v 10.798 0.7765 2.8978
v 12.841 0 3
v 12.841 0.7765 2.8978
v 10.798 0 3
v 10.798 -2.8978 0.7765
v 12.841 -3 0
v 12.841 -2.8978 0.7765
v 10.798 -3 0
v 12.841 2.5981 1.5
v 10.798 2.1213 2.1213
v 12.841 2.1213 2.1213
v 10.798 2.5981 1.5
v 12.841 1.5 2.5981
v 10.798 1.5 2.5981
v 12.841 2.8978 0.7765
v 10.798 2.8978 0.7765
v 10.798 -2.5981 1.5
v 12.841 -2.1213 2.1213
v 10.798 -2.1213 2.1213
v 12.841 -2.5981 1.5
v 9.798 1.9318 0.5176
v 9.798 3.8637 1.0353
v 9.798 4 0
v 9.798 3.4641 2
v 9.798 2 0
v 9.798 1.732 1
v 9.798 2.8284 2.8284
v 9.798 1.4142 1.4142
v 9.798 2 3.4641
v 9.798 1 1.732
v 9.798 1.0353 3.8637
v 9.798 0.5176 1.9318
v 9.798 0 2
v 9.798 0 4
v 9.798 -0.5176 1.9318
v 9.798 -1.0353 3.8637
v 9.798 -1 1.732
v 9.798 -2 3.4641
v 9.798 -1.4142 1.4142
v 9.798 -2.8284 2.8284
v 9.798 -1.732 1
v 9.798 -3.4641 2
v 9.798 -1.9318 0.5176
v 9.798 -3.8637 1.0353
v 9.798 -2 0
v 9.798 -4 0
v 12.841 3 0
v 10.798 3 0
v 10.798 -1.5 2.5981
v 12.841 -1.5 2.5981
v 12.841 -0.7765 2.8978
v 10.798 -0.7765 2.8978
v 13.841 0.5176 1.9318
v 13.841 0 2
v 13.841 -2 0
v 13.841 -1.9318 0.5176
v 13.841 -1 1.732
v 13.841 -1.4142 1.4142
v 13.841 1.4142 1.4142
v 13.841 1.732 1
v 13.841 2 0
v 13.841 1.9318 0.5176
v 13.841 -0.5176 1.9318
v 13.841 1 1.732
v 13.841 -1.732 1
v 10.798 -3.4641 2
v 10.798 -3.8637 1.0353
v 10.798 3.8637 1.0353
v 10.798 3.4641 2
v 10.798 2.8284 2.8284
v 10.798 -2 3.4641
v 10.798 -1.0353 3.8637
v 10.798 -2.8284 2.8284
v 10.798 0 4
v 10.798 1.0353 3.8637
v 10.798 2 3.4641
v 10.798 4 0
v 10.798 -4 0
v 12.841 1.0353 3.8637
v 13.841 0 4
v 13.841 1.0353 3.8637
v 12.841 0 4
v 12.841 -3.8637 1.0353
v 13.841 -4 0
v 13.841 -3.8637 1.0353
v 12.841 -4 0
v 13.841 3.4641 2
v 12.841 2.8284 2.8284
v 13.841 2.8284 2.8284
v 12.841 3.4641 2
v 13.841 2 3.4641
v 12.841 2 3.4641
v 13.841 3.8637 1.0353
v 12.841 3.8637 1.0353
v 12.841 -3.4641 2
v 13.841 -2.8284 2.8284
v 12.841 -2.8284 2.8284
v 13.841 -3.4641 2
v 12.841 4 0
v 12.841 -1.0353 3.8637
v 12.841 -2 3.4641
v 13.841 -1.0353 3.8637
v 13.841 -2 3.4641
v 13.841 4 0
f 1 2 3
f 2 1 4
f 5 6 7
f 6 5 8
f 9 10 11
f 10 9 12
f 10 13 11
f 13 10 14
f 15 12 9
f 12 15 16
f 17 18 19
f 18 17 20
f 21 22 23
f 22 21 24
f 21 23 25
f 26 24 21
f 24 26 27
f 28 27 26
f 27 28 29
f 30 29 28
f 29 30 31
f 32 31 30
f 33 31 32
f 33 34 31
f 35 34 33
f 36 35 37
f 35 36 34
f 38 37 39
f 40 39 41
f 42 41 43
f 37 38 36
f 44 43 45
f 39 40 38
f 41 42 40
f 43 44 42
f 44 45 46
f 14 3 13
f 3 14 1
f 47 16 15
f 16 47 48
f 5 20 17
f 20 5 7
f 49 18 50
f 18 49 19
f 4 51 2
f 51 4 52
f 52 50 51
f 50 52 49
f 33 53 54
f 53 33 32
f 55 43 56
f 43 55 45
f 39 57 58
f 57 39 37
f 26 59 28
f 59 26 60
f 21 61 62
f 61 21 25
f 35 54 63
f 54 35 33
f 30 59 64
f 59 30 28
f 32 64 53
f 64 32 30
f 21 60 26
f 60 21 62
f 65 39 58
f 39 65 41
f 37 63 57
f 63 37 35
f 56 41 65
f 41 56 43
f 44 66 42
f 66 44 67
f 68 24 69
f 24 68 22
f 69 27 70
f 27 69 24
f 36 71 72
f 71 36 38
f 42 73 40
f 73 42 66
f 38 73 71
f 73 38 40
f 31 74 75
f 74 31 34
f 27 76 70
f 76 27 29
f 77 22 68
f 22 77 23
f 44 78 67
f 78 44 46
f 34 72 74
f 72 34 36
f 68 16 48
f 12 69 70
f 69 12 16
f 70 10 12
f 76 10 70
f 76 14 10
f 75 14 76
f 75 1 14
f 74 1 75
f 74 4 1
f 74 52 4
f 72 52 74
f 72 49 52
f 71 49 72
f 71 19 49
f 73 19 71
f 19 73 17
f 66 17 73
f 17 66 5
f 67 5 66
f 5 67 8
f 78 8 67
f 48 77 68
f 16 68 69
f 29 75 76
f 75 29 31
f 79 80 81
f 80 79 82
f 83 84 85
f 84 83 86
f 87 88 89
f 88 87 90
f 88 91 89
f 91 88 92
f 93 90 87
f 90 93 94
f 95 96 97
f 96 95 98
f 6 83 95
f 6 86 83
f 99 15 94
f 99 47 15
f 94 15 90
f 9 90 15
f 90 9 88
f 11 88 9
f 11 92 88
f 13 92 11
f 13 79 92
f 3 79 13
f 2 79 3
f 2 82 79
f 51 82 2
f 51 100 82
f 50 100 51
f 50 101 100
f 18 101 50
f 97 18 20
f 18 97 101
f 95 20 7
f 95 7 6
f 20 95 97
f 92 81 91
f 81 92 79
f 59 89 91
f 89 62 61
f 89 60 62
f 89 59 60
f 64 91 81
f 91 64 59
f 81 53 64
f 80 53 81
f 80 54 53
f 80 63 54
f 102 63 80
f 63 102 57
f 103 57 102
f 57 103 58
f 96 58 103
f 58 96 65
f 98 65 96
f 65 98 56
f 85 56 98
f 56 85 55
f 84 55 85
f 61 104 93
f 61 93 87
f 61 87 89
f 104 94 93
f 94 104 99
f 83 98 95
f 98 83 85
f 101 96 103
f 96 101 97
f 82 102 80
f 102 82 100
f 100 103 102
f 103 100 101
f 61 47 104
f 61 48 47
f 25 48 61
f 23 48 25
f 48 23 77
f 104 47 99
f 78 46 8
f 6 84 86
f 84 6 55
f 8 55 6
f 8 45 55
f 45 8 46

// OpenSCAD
// file: ../build_environments.scad
// build_environments.scad: modules to build level sections
//

module pool(diameter=10.0, wall_height=2.0, step_width=3.0, connections=[])
{
    difference() {
        union() {
        difference() {
            cylinder(h=0.5,r1=diameter+step_width,r2=diameter+step_width,$fn=48);
            translate([0,0,-0.1])
                cylinder(h=0.7,r1=diameter,r2=diameter,$fn=48);
        }
        difference() {
            cylinder(h=wall_height,r1=diameter+step_width+1.0,r2=diameter+step_width+1.0,$fn=48);
            translate([0,0,-0.1])
                cylinder(h=wall_height+0.2,r1=diameter+step_width,r2=diameter+step_width,$fn=48);
        }
        }
    
        for (c = connections)
        {
            rotate([0,90,0]) {
                angle = atan2(c[1],c[0]);
                rotate([-angle,0,0]) {
                    cylinder(h=diameter+5.0,r1=c[2],r2=c[2],$fn=48);
                }
            }
        }
    }
}

module straight(length=10.0, width=2.0, dy1=0.0, dy2=0.0, dz=0.0)
{
    dims = [0, 0, 0, 0, 0, (dz/length)];
    matrix = [
        [ 1, dims[0], dims[1], 0 ],
        [ dims[2], 1, dims[4], 0 ],
        [ dims[5], dims[3], 1, 0 ],
        [ 0, 0, 0, 1 ]
    ];
    multmatrix(matrix)
    difference() {
        translate([dy1,0,0])
        union() {
            rotate([0,90,0]) {
                difference() {
                    cylinder(h=(length-dy1-dy2),r1=width+1.0,r2=width+1.0,$fn=24);
                    translate([0,0,-0.1])
                        cylinder(h=(length-dy1-dy2+0.2),r1=width,r2=width,$fn=24);
                }
                difference() {
                    cylinder(h=1.0,r1=width+2.0,r2=width+2.0,$fn=24);
                    translate([0,0,-0.1])
                        cylinder(h=1.2,r1=width,r2=width,$fn=24);
                }
                translate([0,0,(length-dy1-dy2)-1.0]) {
                    difference() {
                        cylinder(h=1.0,r1=width+2.0,r2=width+2.0,$fn=24);
                        translate([0,0,-0.1])
                            cylinder(h=1.2,r1=width,r2=width,$fn=24);
                    }
                }
            }
        }
        translate([0,0,-(2*width+4.0)/2])
            cube([3*length,3*length,2*width+4.0],center=true);
    }
}

module curve(p0=[0,0], center=[0,0], dir=1, angle=0.0, width=2.0)
{
    radius = sqrt((p0[0]-center[0])*(p0[0]-center[0]) + (p0[1]-center[1])*(p0[1]-center[1]));
    if (dir == 0) {
        difference() {
            rotate([0,0,-90])
            difference() {
                rotate_extrude(angle = angle, convexity = 10, $fn=32)
                    translate([radius, 0, 0])
                        circle(r = width+1.0,$fn=24);
                rotate([0,0,-1.0])
                    rotate_extrude(angle = angle+2.0, convexity = 10, $fn=32)
                        translate([radius, 0, 0])
                            circle(r = width,$fn=24);
            }
            translate([0,0,-(2*width+4.0)/2])
                cube([5*radius,5*radius,2*width+4.0],center=true);
        }
    }
    else {
        difference() {
            rotate([0,0,90])
            difference() {
                rotate_extrude(angle = -angle, convexity = 10, $fn=32)
                    translate([radius, 0, 0])
                        circle(r = width+1.0,$fn=24);
                rotate([0,0,1.0])
                    rotate_extrude(angle = -angle-2.0, convexity = 10, $fn=32)
                        translate([radius, 0, 0])
                            circle(r = width,$fn=24);
            }
            translate([0,0,-(2*width+4.0)/2])
                cube([5*radius,5*radius,2*width+4.0],center=true);
        }
    }

}

// test pool
//pool(diameter=12.0000, wall_height=3.0000, step_width=3.0000, connections=[[0.0000,-26.0000,2.0000], [23.6074,0.0000,2.0000]]);

// test straight, slope
//straight(length=26.0000, width=2.0000, dy1=11.8322, dy2=6.7082, dz=0.0000);
//straight(length=29.1549, width=12.0000, dy1=0.0000, dy2=0.0000, dz=-15.0000);

// test curve
//curve(p0=[23.6074, 0.0000], center=[23.6074, 5.0000], dir=0, angle=60.1011, width=2.0000);
//curve(p0=[33.6426, 12.4219], center=[37.9771, 9.9295], dir=1, angle=120.4627, width=2.0000);
// main file
use <../build_environments.scad>;
straight(length=21.5870, width=2.0000, dy1=9.7980, dy2=7.7460, dz=0.0000);
